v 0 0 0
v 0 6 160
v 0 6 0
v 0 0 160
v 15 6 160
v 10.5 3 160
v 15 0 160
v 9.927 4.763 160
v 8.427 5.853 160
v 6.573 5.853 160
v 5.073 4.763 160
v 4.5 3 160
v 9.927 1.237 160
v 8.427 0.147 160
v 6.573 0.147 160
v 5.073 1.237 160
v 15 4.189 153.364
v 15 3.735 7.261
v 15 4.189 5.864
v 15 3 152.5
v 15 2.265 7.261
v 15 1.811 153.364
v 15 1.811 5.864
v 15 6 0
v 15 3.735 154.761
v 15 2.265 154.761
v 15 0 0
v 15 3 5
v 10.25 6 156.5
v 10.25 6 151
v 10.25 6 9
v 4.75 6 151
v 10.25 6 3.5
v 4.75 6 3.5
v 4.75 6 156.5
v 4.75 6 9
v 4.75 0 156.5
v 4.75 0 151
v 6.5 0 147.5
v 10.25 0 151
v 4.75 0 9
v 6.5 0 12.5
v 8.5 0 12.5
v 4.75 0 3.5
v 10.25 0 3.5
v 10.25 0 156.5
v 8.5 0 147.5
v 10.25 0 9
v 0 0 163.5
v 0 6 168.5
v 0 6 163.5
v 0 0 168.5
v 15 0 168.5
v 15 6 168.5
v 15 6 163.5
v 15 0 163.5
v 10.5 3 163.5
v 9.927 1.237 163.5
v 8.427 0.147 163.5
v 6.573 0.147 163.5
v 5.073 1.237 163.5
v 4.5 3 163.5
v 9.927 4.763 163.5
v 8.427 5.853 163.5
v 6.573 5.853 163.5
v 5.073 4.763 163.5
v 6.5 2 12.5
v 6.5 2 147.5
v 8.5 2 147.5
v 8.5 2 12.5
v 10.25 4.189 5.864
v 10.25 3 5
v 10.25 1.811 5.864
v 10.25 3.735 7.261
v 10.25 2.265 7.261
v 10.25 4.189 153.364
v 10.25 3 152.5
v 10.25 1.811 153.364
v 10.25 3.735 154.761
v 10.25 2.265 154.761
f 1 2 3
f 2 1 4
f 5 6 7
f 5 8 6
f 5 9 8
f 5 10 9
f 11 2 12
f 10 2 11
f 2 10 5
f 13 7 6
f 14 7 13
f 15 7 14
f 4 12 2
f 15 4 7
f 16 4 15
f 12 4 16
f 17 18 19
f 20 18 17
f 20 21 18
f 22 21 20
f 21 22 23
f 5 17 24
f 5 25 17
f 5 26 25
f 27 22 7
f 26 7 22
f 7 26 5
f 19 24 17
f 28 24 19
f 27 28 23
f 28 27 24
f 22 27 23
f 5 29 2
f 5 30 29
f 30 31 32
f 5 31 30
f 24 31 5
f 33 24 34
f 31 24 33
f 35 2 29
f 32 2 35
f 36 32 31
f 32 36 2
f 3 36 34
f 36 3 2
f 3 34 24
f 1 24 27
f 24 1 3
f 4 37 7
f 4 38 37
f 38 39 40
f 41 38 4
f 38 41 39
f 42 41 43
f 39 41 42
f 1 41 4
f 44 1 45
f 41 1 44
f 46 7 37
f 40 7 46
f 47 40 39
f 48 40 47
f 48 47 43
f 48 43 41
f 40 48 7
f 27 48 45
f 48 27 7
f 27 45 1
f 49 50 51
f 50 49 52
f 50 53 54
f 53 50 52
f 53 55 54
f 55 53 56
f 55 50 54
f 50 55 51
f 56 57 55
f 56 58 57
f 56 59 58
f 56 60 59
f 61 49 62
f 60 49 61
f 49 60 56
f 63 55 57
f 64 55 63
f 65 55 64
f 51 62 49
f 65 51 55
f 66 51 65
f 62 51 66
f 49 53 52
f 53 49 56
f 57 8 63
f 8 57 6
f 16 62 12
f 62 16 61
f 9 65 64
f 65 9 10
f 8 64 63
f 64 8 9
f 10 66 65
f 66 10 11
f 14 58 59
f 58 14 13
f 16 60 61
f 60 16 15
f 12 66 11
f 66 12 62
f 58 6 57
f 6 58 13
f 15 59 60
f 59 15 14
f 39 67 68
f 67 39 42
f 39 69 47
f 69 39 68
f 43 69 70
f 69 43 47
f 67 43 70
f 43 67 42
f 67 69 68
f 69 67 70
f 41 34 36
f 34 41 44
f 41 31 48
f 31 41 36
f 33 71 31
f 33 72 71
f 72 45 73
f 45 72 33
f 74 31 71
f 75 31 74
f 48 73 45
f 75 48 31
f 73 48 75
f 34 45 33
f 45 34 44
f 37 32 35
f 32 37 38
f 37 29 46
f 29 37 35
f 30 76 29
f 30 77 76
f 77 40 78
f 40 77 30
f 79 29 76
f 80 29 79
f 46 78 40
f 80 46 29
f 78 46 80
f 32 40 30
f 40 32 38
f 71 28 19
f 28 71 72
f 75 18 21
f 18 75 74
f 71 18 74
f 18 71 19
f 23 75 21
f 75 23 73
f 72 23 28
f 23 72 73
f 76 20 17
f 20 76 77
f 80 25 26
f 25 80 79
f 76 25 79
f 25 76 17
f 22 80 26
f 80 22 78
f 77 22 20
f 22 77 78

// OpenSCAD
/////////////////////////////////////////////////////////////////////////////////
// Adapter for drilling machine in the embedded lab.
//
// Author:              Maximilian Stiefel
// Last modification:   10.06.2017
/////////////////////////////////////////////////////////////////////////////////

/////////////////////////////////////////////////////////////////////////////////
// Vars
/////////////////////////////////////////////////////////////////////////////////
// Dimesions holder
holder_height = 160;
holder_width = 15;
holder_depth = 6;

// Dimensions notch
notch_height = 135;
notch_width = 2;
notch_depth = 3;

// General allowance
allowance = 0.5;

// Dimensions crossbar
crossbar_height = 5 + allowance;
crossbar_width = 5 + allowance;

// Dimensions lid
lid_thickness = 3;
lid_slot_width = 8;

// Dimensions neck
neck_diameter = holder_depth;
neck_height = lid_thickness + allowance;

// Dimensions head 
head_width = holder_width;
head_depth = holder_depth;
head_height = 5;

// Suitable for M3 screw thread
hole_diameter = 2.5;

// Height difference between notch for PCB and the actual holder
height_diff_1 = holder_height - notch_height;

// Width difference between crossbar and holder
width_diff_1 = holder_width - crossbar_width;

/////////////////////////////////////////////////////////////////////////////////
// Action
/////////////////////////////////////////////////////////////////////////////////
difference()
{
union()
{
	// Cube for the base holder
	cube([holder_width, holder_depth, holder_height], center = false);
	// Head
	translate([0, 0, holder_height + neck_height])
	cube([head_width, head_depth, head_height]);
	// Neck
	translate([holder_width/2, holder_depth/2, holder_height])
	cylinder(h = neck_height, r = neck_diameter/2);
}

union()
{
	// Cube for notch
	translate([holder_width/2 - notch_width/2, -1, height_diff_1/2])
	cube([notch_width, notch_depth, notch_height], center = false);

	// Slots for crossbars
	translate([width_diff_1/2, -1, (1/4)*height_diff_1 - crossbar_height/2])
	cube([crossbar_width, holder_depth + 2, crossbar_height], center = false);
	translate([width_diff_1/2, -1, (3/4)*height_diff_1 + notch_height - crossbar_height/2])
	cube([crossbar_width, holder_depth + 2, crossbar_height], center = false);

	// Drill holes for screws
	translate([holder_width/2, holder_depth/2, (1/4)*height_diff_1])
	rotate([0, 90, 0])
	cylinder(h = 9, r = hole_diameter/2);
	translate([holder_width/2, holder_depth/2,(3/4)*height_diff_1 + notch_height])
	rotate([0, 90, 0])
	cylinder(h = 9, r = hole_diameter/2);
}
}
